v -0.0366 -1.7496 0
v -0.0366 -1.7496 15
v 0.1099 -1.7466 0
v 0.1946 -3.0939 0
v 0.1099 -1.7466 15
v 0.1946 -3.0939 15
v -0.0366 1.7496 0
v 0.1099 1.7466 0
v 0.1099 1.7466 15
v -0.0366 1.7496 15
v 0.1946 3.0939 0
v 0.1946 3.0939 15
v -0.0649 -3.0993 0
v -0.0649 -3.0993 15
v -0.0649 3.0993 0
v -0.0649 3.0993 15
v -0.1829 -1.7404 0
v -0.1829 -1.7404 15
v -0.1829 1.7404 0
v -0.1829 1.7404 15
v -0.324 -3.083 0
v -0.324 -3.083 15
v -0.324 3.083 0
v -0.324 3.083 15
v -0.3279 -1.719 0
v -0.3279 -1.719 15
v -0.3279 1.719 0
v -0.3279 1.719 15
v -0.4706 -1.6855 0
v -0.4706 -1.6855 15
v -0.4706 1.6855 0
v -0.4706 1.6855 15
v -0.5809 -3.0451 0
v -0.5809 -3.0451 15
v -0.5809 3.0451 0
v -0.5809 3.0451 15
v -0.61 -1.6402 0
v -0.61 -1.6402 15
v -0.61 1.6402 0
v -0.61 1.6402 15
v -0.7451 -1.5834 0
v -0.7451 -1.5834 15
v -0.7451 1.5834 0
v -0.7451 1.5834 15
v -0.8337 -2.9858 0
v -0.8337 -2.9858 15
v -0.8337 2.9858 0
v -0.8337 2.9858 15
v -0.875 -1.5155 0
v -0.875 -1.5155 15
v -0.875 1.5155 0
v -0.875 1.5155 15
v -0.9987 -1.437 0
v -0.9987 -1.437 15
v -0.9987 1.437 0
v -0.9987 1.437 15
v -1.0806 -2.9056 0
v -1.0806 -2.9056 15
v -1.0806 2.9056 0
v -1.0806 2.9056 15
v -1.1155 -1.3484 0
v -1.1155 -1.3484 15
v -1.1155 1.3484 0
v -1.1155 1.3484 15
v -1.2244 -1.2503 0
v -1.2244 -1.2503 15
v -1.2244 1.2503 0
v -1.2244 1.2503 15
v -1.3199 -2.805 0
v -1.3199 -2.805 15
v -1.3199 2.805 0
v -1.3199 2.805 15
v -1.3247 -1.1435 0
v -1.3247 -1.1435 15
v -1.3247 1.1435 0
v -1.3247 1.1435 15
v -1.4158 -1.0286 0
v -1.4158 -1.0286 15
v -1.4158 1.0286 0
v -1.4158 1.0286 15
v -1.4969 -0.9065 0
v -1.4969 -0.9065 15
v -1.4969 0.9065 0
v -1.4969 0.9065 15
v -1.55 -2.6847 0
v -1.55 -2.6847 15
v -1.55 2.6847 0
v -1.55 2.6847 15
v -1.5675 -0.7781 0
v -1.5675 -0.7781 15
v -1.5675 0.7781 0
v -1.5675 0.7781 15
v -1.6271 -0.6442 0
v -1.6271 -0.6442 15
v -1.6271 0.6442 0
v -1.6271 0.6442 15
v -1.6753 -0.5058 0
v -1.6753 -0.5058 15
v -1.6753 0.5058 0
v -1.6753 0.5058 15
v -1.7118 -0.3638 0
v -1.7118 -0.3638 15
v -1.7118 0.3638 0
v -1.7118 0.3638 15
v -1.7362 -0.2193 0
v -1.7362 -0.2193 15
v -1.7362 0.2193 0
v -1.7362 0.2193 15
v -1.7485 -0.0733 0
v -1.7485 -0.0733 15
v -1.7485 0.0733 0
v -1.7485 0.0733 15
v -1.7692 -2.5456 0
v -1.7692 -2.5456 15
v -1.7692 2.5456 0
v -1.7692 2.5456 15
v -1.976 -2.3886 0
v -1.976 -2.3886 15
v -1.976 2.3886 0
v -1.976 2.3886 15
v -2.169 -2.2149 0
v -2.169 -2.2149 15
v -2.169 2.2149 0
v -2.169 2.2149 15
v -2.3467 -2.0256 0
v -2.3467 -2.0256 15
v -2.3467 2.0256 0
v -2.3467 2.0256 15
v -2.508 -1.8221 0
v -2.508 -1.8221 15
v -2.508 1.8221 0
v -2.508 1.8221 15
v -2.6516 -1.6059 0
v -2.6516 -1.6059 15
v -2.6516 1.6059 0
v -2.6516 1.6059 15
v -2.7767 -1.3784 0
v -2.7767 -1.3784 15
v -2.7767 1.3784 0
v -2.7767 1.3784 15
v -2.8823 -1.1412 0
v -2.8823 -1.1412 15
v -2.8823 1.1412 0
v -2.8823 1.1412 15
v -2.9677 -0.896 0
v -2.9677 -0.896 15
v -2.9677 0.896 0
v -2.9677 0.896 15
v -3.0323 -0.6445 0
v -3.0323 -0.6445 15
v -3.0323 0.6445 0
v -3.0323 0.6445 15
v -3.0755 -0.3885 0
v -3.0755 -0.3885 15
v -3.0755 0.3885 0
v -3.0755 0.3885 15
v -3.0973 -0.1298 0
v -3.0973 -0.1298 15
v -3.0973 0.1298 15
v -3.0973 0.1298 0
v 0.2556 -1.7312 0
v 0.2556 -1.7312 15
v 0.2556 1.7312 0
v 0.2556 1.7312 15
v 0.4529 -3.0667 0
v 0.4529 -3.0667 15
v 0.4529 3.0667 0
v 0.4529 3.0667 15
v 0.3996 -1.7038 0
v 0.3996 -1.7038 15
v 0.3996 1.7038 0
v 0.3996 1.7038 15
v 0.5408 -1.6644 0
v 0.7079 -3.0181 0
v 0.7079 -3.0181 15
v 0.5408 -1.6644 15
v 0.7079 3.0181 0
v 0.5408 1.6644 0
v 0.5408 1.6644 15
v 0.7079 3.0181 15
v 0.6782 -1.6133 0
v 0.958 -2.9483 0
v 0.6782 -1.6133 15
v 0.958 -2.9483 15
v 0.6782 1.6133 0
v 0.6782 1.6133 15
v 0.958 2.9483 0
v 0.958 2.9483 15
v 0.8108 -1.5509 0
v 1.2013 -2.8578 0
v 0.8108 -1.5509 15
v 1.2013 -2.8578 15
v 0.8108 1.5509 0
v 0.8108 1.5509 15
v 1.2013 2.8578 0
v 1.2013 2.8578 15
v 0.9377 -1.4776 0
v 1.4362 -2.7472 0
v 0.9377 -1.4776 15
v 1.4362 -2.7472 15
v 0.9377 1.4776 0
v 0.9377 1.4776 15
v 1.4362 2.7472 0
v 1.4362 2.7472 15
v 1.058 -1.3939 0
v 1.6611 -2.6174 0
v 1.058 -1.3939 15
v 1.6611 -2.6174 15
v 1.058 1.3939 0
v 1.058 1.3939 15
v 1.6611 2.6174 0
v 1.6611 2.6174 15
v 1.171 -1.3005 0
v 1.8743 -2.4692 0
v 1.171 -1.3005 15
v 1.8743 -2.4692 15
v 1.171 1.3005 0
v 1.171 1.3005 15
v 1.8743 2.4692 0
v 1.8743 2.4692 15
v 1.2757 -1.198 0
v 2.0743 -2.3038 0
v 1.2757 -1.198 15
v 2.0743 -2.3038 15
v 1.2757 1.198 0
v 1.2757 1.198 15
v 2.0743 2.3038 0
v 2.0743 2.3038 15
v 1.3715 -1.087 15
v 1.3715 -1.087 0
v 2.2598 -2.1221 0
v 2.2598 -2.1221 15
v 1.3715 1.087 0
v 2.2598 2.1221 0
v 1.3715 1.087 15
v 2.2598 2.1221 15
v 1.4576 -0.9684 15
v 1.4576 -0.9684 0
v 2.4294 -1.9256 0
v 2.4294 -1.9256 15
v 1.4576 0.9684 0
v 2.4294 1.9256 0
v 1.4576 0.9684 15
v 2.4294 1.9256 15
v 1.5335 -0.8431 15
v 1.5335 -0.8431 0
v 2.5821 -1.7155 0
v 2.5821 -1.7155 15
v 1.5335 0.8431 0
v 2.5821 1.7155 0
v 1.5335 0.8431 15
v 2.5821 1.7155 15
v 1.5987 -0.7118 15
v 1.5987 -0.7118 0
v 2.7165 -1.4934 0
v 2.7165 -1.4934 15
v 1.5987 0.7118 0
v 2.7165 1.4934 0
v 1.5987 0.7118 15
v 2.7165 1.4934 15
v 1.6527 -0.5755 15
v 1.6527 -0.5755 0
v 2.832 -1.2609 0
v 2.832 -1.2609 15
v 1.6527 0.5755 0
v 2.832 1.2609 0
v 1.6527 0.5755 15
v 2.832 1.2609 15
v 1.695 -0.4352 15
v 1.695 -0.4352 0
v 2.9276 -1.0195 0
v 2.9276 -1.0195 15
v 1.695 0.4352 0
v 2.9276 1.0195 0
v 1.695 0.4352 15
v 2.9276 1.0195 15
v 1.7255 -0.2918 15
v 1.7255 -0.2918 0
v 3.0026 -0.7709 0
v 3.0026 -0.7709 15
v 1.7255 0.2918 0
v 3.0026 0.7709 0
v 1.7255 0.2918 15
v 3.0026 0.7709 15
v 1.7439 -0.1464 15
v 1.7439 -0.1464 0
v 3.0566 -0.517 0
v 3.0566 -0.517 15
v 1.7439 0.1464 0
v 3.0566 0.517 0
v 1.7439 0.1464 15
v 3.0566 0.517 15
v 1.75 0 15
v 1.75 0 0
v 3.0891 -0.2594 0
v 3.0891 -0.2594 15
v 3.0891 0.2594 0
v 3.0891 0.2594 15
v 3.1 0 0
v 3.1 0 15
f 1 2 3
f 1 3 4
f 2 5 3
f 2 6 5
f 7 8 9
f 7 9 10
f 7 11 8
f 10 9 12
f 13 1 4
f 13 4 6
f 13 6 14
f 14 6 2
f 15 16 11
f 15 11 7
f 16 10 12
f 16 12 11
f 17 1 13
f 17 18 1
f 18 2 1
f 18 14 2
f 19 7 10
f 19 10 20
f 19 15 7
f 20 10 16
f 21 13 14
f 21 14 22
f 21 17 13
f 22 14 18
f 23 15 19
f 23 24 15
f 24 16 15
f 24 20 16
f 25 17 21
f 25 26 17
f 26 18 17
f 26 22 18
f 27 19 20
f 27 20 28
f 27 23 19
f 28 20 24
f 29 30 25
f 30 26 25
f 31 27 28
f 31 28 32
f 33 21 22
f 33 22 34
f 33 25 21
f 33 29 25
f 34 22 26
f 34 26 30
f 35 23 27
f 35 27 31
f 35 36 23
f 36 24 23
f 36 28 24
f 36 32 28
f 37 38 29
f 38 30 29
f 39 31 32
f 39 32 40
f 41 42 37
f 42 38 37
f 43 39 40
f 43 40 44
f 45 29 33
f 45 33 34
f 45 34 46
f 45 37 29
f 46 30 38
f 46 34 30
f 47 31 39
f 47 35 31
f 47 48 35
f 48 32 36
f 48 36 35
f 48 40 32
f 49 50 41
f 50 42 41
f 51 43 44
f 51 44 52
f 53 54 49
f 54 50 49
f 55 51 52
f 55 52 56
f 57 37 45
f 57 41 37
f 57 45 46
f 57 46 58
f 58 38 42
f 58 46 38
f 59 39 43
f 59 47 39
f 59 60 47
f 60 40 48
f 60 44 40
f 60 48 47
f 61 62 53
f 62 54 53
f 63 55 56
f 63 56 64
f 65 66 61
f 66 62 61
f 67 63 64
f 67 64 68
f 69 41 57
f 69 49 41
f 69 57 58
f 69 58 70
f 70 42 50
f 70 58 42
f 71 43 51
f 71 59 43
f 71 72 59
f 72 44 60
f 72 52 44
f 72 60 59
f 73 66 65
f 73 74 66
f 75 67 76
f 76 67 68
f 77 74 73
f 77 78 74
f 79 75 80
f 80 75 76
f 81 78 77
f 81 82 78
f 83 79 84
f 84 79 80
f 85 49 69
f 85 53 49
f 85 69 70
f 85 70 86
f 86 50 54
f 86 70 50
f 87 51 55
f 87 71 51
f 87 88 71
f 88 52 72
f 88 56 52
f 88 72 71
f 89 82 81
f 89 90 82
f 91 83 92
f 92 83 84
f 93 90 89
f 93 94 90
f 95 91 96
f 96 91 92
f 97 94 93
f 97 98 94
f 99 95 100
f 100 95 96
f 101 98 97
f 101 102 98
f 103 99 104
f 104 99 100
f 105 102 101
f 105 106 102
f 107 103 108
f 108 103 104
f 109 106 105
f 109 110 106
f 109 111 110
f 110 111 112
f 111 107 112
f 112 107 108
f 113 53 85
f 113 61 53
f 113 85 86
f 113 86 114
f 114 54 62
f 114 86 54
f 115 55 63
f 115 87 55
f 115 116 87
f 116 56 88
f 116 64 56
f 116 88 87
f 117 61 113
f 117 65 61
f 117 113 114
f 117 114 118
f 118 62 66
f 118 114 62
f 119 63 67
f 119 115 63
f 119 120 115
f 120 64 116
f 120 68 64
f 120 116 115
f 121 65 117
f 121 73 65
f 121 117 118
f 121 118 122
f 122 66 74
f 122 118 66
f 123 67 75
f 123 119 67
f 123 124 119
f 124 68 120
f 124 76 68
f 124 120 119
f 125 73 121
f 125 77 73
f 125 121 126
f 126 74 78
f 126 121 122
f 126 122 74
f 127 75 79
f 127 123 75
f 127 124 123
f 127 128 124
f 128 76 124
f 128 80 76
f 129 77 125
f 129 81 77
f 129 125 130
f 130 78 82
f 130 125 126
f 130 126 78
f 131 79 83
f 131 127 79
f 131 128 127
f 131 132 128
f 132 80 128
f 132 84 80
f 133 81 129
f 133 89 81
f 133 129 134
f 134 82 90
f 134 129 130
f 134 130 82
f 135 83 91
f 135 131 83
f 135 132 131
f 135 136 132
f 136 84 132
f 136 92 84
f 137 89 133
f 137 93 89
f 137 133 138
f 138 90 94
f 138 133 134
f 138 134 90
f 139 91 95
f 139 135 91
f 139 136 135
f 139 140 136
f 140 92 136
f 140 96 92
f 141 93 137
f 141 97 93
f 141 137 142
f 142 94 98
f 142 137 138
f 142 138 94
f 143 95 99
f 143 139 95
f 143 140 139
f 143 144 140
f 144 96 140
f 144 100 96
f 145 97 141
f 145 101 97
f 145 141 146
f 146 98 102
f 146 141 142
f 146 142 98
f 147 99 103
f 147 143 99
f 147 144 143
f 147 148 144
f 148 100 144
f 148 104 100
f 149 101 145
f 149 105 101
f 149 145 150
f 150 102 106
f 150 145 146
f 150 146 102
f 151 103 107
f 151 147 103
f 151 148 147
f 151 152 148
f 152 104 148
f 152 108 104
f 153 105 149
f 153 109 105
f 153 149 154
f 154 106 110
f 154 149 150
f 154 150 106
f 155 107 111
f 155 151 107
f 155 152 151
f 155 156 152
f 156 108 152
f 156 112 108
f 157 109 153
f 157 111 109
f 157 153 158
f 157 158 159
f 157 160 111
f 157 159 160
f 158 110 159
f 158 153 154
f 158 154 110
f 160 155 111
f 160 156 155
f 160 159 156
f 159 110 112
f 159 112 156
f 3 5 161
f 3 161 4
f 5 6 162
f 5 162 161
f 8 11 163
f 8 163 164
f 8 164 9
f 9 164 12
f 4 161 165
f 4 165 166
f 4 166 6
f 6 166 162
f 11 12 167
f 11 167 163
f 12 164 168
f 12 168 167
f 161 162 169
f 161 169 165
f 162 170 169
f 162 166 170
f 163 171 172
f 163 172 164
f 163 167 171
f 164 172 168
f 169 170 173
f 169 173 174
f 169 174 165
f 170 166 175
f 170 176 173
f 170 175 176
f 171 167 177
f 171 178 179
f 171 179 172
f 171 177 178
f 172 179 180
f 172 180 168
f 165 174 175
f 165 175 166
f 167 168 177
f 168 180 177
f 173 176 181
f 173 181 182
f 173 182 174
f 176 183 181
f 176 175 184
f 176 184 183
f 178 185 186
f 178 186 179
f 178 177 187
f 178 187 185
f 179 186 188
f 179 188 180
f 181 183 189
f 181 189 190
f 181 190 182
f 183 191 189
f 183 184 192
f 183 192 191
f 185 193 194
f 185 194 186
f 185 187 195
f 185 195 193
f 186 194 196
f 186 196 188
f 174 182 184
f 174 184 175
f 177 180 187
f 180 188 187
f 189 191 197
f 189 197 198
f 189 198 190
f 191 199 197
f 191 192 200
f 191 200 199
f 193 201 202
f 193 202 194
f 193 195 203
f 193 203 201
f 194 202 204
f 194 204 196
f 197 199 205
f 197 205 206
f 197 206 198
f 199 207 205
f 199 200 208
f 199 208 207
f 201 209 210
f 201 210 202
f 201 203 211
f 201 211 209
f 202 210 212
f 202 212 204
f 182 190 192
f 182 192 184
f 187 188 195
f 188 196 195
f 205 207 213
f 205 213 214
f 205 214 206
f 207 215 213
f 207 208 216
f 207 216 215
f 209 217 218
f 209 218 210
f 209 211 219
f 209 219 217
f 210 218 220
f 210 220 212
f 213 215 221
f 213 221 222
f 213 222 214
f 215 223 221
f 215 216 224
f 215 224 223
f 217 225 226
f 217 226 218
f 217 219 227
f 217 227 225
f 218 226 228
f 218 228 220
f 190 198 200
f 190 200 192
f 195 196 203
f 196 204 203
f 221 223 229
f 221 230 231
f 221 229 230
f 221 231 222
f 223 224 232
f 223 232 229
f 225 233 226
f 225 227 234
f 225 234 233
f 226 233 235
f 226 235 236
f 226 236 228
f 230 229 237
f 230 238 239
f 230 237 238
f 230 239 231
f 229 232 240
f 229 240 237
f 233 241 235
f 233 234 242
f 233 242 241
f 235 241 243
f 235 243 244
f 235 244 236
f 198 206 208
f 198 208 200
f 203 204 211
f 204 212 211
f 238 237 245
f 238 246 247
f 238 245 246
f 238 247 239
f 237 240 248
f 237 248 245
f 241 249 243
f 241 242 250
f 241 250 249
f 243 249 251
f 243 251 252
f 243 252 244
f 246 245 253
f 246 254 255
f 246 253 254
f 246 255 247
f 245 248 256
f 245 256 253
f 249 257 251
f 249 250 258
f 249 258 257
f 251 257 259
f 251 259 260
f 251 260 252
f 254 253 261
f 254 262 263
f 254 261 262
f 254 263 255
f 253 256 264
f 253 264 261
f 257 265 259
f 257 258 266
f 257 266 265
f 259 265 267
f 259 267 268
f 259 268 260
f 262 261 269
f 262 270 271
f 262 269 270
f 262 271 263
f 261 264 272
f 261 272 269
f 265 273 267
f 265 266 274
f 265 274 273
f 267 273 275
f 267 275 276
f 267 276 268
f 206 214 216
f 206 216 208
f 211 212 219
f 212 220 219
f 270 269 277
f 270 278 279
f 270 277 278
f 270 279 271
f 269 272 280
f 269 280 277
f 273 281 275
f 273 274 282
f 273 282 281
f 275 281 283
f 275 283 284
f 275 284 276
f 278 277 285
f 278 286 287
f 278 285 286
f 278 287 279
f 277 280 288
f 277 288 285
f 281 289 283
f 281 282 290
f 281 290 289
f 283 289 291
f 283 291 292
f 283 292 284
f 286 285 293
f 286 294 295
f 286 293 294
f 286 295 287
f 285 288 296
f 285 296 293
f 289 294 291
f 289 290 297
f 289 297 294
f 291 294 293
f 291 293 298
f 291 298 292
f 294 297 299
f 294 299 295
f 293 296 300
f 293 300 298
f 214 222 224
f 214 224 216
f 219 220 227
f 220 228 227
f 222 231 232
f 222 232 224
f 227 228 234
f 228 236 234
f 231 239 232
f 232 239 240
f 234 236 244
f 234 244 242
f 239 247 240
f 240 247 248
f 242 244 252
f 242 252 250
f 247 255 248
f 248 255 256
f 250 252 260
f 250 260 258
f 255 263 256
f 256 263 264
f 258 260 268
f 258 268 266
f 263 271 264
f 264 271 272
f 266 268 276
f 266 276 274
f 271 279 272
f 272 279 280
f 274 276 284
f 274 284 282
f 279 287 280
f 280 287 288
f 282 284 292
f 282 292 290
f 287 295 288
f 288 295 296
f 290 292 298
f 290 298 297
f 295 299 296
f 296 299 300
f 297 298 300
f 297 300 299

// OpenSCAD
// file: ../configuration.scad
// Created by Phisik on 2018-12-16
// Main settings header for peristaltic pump

// Licence GPL

// some extra gap for clean difference render in preview
eps = 0.1;

// Part smoothness, the more the better
$fn = 100;

layer_height = 0.25;

// Silicon hose settings
//====================================================================================

// NB! The larger the hose radius the higher torque is required
r_hose = 22;        // radius of hose center line
                    // Update: after addition of groove hose center is at r_hose + hose_groove
d_hose = 9;         // hose diameter

hose_wall = 1.5;   // hose wall thickness
					// NB! hose_wall affects both stator & rotor geometry
					
hose_clearance = 0.2;   // extra clearance between hose & bearings
						// NB! hose_clearance affects only rotor geometry
						// If you experience lack of suction reduce hose_clearance 
						// If motor misses steps increase hose_clearance, take motor with higher 
						// torque or hose with thinner wall

hose_fitting_delta_d = 1; // difference between hose and hose fitting diameter
						
						
// Stator settings
//====================================================================================
wall = 4;             // wall thickness, should be larger than hose_groove by 1mm or more
hose_groove = 0;     // NB! Rudiment form v1. Do not change. 
					 // groove depth for hose to stay in place 

h_base = 4;             // height of stator base
h_support_base = 2;		// height of support base

stator_support_gap = 1;		// gap between support & stator base for spring tension

stator_facet = 10;   // facets of outer support corners

mount_width  = 8;
mount_length = 10;

d_screw = 3.5;           // screw diameter
d_nut = 6.5;             // nut & screw head diameter
d_nut_tight = 5.5/0.87; // nut diameter for nuts to be fitted with soldering iron

l_handle = 10;

r_water_sink = 5.5;

need_nut_cuts_in_support = 0; // cut holes for nuts in support
need_nut_cuts_in_stator  = 1; // cut holes for support nut in stator

hose_fixator_length = 15;  // length of hose inset for fixing it on the stator


// Bearing settings
//====================================================================================
bearingNum = 3;     // Number of bearings per arm

h_bearing = 5;      // bearing height
d_bearing = 14;     // OD
d_bearing_axis = 5;         // ID
w_axis = 1;         // thickness of inner bushing



// Rotor settings
//==================================================================================== 
d_rotor = 17.5;   // Outer rotor diameter

arm_num = 3;    // number of rotor arms
w_arm  = 15;    // arm width
h_arm = 3;      // arm height

enable_hose_guides = 1;
w_hose_guide = 8;
hose_guide_clearance = 0.75;
r_hose_guide_facet = 2;

gap = 0.2;      // some clearance between joins & moving parts

arm_clearance = 4;  // clearance between arm and stator

bearing_axes_clearance = 0.075;  	     // clearance on rotor base between bearings and axes
rotor_bearing_axes_clearance = 0.3;  // clearance on rotor cap between axes and holes
bearing_clearance = 1; 				 // distance from stator base to the lowest arms

// 1602 lcd settings
//====================================================================================
y_lcd_hole = 31;
x_lcd_hole = 75;
d_lcd_hole = 3;

l_lcd_plate = 80;
w_lcd_plate = 36.11;
h_lcd_plate = 1.6;

l_lcd = 71.5;
w_lcd = 24.5;
h_lcd = 8.75;

x_lcd_shift = -0.1;
y_lcd_shift = +0.75;

l_lcd_i2c = 42;
w_lcd_i2c = 19;
h_lcd_i2c = 1.5;


// Nema 17 settings
//====================================================================================
nema_screw_distance = 31;  
nema_shaft_diameter = 5.5;
nema_shaft_height = 25;
nema_knob_diameter = 23;
nema_knob_height = 2.5;
nema_width = 42.3;
nema_angle_cut = 4;
// main file
include <../configuration.scad>

hose_fixator();

hose_fixator_length = 15;

module hose_fixator() {
	$fn = 75;

	// Length
	h=hose_fixator_length;

	//Radius
	d_hose = 9;
	hose_wall = 1.5; 
	hose_fitting_delta_d = 0.2;
	r=d_hose/2-hose_wall+hose_fitting_delta_d/2; 

	//wall thickness
	th=0.45*3; 

	difference(){
		cylinder(r=r, h=h);
		cylinder(r=r-th, h=h);
	}
}
